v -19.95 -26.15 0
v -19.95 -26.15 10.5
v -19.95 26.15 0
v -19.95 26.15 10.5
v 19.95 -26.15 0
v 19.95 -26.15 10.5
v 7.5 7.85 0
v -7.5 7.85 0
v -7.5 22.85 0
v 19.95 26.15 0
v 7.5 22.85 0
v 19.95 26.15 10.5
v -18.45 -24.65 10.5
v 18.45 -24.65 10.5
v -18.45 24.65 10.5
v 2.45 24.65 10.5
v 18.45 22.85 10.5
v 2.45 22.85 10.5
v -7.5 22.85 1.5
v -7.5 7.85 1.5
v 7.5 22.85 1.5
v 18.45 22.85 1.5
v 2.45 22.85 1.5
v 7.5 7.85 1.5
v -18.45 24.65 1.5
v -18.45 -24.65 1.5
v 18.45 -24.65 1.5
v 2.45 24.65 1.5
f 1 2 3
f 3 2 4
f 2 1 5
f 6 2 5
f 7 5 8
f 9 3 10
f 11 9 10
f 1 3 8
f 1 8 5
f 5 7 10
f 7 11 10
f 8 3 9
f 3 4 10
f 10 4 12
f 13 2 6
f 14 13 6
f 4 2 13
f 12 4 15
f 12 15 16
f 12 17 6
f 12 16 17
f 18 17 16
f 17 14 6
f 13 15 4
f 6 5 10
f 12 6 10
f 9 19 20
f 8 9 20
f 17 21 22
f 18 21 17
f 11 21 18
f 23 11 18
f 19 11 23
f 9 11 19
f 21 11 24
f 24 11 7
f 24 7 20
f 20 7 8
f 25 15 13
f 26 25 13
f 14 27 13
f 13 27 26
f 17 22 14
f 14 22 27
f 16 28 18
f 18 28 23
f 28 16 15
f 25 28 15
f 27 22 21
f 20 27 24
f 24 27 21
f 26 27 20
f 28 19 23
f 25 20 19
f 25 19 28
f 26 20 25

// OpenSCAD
inner_length_long=49.3;
inner_length_short=47.5;
inner_width=36.9;
short_width=16;
height=10.5;
wall_thickness=1.5;
floor_cutout_length=15;

//derived
long_width=inner_width-short_width;

outter_length=inner_length_long+2*wall_thickness;
outter_width=inner_width+2*wall_thickness;


//move the whole thing to the center
translate([-outter_width/2,-outter_length/2,0]){

difference(){
//main cube
cube([outter_width,outter_length,height]);

//cut out long part
translate([wall_thickness,wall_thickness,wall_thickness]){
 cube([long_width,inner_length_long,height]);
}

//cut out short part
translate([wall_thickness+long_width-1,wall_thickness,wall_thickness]){
 cube([short_width+1,inner_length_short,height]);
}

//cut out floor
translate([outter_width/2-floor_cutout_length/2,wall_thickness+inner_length_short-floor_cutout_length,-1]){
 cube([floor_cutout_length,floor_cutout_length,wall_thickness*2]);
}

}

}
